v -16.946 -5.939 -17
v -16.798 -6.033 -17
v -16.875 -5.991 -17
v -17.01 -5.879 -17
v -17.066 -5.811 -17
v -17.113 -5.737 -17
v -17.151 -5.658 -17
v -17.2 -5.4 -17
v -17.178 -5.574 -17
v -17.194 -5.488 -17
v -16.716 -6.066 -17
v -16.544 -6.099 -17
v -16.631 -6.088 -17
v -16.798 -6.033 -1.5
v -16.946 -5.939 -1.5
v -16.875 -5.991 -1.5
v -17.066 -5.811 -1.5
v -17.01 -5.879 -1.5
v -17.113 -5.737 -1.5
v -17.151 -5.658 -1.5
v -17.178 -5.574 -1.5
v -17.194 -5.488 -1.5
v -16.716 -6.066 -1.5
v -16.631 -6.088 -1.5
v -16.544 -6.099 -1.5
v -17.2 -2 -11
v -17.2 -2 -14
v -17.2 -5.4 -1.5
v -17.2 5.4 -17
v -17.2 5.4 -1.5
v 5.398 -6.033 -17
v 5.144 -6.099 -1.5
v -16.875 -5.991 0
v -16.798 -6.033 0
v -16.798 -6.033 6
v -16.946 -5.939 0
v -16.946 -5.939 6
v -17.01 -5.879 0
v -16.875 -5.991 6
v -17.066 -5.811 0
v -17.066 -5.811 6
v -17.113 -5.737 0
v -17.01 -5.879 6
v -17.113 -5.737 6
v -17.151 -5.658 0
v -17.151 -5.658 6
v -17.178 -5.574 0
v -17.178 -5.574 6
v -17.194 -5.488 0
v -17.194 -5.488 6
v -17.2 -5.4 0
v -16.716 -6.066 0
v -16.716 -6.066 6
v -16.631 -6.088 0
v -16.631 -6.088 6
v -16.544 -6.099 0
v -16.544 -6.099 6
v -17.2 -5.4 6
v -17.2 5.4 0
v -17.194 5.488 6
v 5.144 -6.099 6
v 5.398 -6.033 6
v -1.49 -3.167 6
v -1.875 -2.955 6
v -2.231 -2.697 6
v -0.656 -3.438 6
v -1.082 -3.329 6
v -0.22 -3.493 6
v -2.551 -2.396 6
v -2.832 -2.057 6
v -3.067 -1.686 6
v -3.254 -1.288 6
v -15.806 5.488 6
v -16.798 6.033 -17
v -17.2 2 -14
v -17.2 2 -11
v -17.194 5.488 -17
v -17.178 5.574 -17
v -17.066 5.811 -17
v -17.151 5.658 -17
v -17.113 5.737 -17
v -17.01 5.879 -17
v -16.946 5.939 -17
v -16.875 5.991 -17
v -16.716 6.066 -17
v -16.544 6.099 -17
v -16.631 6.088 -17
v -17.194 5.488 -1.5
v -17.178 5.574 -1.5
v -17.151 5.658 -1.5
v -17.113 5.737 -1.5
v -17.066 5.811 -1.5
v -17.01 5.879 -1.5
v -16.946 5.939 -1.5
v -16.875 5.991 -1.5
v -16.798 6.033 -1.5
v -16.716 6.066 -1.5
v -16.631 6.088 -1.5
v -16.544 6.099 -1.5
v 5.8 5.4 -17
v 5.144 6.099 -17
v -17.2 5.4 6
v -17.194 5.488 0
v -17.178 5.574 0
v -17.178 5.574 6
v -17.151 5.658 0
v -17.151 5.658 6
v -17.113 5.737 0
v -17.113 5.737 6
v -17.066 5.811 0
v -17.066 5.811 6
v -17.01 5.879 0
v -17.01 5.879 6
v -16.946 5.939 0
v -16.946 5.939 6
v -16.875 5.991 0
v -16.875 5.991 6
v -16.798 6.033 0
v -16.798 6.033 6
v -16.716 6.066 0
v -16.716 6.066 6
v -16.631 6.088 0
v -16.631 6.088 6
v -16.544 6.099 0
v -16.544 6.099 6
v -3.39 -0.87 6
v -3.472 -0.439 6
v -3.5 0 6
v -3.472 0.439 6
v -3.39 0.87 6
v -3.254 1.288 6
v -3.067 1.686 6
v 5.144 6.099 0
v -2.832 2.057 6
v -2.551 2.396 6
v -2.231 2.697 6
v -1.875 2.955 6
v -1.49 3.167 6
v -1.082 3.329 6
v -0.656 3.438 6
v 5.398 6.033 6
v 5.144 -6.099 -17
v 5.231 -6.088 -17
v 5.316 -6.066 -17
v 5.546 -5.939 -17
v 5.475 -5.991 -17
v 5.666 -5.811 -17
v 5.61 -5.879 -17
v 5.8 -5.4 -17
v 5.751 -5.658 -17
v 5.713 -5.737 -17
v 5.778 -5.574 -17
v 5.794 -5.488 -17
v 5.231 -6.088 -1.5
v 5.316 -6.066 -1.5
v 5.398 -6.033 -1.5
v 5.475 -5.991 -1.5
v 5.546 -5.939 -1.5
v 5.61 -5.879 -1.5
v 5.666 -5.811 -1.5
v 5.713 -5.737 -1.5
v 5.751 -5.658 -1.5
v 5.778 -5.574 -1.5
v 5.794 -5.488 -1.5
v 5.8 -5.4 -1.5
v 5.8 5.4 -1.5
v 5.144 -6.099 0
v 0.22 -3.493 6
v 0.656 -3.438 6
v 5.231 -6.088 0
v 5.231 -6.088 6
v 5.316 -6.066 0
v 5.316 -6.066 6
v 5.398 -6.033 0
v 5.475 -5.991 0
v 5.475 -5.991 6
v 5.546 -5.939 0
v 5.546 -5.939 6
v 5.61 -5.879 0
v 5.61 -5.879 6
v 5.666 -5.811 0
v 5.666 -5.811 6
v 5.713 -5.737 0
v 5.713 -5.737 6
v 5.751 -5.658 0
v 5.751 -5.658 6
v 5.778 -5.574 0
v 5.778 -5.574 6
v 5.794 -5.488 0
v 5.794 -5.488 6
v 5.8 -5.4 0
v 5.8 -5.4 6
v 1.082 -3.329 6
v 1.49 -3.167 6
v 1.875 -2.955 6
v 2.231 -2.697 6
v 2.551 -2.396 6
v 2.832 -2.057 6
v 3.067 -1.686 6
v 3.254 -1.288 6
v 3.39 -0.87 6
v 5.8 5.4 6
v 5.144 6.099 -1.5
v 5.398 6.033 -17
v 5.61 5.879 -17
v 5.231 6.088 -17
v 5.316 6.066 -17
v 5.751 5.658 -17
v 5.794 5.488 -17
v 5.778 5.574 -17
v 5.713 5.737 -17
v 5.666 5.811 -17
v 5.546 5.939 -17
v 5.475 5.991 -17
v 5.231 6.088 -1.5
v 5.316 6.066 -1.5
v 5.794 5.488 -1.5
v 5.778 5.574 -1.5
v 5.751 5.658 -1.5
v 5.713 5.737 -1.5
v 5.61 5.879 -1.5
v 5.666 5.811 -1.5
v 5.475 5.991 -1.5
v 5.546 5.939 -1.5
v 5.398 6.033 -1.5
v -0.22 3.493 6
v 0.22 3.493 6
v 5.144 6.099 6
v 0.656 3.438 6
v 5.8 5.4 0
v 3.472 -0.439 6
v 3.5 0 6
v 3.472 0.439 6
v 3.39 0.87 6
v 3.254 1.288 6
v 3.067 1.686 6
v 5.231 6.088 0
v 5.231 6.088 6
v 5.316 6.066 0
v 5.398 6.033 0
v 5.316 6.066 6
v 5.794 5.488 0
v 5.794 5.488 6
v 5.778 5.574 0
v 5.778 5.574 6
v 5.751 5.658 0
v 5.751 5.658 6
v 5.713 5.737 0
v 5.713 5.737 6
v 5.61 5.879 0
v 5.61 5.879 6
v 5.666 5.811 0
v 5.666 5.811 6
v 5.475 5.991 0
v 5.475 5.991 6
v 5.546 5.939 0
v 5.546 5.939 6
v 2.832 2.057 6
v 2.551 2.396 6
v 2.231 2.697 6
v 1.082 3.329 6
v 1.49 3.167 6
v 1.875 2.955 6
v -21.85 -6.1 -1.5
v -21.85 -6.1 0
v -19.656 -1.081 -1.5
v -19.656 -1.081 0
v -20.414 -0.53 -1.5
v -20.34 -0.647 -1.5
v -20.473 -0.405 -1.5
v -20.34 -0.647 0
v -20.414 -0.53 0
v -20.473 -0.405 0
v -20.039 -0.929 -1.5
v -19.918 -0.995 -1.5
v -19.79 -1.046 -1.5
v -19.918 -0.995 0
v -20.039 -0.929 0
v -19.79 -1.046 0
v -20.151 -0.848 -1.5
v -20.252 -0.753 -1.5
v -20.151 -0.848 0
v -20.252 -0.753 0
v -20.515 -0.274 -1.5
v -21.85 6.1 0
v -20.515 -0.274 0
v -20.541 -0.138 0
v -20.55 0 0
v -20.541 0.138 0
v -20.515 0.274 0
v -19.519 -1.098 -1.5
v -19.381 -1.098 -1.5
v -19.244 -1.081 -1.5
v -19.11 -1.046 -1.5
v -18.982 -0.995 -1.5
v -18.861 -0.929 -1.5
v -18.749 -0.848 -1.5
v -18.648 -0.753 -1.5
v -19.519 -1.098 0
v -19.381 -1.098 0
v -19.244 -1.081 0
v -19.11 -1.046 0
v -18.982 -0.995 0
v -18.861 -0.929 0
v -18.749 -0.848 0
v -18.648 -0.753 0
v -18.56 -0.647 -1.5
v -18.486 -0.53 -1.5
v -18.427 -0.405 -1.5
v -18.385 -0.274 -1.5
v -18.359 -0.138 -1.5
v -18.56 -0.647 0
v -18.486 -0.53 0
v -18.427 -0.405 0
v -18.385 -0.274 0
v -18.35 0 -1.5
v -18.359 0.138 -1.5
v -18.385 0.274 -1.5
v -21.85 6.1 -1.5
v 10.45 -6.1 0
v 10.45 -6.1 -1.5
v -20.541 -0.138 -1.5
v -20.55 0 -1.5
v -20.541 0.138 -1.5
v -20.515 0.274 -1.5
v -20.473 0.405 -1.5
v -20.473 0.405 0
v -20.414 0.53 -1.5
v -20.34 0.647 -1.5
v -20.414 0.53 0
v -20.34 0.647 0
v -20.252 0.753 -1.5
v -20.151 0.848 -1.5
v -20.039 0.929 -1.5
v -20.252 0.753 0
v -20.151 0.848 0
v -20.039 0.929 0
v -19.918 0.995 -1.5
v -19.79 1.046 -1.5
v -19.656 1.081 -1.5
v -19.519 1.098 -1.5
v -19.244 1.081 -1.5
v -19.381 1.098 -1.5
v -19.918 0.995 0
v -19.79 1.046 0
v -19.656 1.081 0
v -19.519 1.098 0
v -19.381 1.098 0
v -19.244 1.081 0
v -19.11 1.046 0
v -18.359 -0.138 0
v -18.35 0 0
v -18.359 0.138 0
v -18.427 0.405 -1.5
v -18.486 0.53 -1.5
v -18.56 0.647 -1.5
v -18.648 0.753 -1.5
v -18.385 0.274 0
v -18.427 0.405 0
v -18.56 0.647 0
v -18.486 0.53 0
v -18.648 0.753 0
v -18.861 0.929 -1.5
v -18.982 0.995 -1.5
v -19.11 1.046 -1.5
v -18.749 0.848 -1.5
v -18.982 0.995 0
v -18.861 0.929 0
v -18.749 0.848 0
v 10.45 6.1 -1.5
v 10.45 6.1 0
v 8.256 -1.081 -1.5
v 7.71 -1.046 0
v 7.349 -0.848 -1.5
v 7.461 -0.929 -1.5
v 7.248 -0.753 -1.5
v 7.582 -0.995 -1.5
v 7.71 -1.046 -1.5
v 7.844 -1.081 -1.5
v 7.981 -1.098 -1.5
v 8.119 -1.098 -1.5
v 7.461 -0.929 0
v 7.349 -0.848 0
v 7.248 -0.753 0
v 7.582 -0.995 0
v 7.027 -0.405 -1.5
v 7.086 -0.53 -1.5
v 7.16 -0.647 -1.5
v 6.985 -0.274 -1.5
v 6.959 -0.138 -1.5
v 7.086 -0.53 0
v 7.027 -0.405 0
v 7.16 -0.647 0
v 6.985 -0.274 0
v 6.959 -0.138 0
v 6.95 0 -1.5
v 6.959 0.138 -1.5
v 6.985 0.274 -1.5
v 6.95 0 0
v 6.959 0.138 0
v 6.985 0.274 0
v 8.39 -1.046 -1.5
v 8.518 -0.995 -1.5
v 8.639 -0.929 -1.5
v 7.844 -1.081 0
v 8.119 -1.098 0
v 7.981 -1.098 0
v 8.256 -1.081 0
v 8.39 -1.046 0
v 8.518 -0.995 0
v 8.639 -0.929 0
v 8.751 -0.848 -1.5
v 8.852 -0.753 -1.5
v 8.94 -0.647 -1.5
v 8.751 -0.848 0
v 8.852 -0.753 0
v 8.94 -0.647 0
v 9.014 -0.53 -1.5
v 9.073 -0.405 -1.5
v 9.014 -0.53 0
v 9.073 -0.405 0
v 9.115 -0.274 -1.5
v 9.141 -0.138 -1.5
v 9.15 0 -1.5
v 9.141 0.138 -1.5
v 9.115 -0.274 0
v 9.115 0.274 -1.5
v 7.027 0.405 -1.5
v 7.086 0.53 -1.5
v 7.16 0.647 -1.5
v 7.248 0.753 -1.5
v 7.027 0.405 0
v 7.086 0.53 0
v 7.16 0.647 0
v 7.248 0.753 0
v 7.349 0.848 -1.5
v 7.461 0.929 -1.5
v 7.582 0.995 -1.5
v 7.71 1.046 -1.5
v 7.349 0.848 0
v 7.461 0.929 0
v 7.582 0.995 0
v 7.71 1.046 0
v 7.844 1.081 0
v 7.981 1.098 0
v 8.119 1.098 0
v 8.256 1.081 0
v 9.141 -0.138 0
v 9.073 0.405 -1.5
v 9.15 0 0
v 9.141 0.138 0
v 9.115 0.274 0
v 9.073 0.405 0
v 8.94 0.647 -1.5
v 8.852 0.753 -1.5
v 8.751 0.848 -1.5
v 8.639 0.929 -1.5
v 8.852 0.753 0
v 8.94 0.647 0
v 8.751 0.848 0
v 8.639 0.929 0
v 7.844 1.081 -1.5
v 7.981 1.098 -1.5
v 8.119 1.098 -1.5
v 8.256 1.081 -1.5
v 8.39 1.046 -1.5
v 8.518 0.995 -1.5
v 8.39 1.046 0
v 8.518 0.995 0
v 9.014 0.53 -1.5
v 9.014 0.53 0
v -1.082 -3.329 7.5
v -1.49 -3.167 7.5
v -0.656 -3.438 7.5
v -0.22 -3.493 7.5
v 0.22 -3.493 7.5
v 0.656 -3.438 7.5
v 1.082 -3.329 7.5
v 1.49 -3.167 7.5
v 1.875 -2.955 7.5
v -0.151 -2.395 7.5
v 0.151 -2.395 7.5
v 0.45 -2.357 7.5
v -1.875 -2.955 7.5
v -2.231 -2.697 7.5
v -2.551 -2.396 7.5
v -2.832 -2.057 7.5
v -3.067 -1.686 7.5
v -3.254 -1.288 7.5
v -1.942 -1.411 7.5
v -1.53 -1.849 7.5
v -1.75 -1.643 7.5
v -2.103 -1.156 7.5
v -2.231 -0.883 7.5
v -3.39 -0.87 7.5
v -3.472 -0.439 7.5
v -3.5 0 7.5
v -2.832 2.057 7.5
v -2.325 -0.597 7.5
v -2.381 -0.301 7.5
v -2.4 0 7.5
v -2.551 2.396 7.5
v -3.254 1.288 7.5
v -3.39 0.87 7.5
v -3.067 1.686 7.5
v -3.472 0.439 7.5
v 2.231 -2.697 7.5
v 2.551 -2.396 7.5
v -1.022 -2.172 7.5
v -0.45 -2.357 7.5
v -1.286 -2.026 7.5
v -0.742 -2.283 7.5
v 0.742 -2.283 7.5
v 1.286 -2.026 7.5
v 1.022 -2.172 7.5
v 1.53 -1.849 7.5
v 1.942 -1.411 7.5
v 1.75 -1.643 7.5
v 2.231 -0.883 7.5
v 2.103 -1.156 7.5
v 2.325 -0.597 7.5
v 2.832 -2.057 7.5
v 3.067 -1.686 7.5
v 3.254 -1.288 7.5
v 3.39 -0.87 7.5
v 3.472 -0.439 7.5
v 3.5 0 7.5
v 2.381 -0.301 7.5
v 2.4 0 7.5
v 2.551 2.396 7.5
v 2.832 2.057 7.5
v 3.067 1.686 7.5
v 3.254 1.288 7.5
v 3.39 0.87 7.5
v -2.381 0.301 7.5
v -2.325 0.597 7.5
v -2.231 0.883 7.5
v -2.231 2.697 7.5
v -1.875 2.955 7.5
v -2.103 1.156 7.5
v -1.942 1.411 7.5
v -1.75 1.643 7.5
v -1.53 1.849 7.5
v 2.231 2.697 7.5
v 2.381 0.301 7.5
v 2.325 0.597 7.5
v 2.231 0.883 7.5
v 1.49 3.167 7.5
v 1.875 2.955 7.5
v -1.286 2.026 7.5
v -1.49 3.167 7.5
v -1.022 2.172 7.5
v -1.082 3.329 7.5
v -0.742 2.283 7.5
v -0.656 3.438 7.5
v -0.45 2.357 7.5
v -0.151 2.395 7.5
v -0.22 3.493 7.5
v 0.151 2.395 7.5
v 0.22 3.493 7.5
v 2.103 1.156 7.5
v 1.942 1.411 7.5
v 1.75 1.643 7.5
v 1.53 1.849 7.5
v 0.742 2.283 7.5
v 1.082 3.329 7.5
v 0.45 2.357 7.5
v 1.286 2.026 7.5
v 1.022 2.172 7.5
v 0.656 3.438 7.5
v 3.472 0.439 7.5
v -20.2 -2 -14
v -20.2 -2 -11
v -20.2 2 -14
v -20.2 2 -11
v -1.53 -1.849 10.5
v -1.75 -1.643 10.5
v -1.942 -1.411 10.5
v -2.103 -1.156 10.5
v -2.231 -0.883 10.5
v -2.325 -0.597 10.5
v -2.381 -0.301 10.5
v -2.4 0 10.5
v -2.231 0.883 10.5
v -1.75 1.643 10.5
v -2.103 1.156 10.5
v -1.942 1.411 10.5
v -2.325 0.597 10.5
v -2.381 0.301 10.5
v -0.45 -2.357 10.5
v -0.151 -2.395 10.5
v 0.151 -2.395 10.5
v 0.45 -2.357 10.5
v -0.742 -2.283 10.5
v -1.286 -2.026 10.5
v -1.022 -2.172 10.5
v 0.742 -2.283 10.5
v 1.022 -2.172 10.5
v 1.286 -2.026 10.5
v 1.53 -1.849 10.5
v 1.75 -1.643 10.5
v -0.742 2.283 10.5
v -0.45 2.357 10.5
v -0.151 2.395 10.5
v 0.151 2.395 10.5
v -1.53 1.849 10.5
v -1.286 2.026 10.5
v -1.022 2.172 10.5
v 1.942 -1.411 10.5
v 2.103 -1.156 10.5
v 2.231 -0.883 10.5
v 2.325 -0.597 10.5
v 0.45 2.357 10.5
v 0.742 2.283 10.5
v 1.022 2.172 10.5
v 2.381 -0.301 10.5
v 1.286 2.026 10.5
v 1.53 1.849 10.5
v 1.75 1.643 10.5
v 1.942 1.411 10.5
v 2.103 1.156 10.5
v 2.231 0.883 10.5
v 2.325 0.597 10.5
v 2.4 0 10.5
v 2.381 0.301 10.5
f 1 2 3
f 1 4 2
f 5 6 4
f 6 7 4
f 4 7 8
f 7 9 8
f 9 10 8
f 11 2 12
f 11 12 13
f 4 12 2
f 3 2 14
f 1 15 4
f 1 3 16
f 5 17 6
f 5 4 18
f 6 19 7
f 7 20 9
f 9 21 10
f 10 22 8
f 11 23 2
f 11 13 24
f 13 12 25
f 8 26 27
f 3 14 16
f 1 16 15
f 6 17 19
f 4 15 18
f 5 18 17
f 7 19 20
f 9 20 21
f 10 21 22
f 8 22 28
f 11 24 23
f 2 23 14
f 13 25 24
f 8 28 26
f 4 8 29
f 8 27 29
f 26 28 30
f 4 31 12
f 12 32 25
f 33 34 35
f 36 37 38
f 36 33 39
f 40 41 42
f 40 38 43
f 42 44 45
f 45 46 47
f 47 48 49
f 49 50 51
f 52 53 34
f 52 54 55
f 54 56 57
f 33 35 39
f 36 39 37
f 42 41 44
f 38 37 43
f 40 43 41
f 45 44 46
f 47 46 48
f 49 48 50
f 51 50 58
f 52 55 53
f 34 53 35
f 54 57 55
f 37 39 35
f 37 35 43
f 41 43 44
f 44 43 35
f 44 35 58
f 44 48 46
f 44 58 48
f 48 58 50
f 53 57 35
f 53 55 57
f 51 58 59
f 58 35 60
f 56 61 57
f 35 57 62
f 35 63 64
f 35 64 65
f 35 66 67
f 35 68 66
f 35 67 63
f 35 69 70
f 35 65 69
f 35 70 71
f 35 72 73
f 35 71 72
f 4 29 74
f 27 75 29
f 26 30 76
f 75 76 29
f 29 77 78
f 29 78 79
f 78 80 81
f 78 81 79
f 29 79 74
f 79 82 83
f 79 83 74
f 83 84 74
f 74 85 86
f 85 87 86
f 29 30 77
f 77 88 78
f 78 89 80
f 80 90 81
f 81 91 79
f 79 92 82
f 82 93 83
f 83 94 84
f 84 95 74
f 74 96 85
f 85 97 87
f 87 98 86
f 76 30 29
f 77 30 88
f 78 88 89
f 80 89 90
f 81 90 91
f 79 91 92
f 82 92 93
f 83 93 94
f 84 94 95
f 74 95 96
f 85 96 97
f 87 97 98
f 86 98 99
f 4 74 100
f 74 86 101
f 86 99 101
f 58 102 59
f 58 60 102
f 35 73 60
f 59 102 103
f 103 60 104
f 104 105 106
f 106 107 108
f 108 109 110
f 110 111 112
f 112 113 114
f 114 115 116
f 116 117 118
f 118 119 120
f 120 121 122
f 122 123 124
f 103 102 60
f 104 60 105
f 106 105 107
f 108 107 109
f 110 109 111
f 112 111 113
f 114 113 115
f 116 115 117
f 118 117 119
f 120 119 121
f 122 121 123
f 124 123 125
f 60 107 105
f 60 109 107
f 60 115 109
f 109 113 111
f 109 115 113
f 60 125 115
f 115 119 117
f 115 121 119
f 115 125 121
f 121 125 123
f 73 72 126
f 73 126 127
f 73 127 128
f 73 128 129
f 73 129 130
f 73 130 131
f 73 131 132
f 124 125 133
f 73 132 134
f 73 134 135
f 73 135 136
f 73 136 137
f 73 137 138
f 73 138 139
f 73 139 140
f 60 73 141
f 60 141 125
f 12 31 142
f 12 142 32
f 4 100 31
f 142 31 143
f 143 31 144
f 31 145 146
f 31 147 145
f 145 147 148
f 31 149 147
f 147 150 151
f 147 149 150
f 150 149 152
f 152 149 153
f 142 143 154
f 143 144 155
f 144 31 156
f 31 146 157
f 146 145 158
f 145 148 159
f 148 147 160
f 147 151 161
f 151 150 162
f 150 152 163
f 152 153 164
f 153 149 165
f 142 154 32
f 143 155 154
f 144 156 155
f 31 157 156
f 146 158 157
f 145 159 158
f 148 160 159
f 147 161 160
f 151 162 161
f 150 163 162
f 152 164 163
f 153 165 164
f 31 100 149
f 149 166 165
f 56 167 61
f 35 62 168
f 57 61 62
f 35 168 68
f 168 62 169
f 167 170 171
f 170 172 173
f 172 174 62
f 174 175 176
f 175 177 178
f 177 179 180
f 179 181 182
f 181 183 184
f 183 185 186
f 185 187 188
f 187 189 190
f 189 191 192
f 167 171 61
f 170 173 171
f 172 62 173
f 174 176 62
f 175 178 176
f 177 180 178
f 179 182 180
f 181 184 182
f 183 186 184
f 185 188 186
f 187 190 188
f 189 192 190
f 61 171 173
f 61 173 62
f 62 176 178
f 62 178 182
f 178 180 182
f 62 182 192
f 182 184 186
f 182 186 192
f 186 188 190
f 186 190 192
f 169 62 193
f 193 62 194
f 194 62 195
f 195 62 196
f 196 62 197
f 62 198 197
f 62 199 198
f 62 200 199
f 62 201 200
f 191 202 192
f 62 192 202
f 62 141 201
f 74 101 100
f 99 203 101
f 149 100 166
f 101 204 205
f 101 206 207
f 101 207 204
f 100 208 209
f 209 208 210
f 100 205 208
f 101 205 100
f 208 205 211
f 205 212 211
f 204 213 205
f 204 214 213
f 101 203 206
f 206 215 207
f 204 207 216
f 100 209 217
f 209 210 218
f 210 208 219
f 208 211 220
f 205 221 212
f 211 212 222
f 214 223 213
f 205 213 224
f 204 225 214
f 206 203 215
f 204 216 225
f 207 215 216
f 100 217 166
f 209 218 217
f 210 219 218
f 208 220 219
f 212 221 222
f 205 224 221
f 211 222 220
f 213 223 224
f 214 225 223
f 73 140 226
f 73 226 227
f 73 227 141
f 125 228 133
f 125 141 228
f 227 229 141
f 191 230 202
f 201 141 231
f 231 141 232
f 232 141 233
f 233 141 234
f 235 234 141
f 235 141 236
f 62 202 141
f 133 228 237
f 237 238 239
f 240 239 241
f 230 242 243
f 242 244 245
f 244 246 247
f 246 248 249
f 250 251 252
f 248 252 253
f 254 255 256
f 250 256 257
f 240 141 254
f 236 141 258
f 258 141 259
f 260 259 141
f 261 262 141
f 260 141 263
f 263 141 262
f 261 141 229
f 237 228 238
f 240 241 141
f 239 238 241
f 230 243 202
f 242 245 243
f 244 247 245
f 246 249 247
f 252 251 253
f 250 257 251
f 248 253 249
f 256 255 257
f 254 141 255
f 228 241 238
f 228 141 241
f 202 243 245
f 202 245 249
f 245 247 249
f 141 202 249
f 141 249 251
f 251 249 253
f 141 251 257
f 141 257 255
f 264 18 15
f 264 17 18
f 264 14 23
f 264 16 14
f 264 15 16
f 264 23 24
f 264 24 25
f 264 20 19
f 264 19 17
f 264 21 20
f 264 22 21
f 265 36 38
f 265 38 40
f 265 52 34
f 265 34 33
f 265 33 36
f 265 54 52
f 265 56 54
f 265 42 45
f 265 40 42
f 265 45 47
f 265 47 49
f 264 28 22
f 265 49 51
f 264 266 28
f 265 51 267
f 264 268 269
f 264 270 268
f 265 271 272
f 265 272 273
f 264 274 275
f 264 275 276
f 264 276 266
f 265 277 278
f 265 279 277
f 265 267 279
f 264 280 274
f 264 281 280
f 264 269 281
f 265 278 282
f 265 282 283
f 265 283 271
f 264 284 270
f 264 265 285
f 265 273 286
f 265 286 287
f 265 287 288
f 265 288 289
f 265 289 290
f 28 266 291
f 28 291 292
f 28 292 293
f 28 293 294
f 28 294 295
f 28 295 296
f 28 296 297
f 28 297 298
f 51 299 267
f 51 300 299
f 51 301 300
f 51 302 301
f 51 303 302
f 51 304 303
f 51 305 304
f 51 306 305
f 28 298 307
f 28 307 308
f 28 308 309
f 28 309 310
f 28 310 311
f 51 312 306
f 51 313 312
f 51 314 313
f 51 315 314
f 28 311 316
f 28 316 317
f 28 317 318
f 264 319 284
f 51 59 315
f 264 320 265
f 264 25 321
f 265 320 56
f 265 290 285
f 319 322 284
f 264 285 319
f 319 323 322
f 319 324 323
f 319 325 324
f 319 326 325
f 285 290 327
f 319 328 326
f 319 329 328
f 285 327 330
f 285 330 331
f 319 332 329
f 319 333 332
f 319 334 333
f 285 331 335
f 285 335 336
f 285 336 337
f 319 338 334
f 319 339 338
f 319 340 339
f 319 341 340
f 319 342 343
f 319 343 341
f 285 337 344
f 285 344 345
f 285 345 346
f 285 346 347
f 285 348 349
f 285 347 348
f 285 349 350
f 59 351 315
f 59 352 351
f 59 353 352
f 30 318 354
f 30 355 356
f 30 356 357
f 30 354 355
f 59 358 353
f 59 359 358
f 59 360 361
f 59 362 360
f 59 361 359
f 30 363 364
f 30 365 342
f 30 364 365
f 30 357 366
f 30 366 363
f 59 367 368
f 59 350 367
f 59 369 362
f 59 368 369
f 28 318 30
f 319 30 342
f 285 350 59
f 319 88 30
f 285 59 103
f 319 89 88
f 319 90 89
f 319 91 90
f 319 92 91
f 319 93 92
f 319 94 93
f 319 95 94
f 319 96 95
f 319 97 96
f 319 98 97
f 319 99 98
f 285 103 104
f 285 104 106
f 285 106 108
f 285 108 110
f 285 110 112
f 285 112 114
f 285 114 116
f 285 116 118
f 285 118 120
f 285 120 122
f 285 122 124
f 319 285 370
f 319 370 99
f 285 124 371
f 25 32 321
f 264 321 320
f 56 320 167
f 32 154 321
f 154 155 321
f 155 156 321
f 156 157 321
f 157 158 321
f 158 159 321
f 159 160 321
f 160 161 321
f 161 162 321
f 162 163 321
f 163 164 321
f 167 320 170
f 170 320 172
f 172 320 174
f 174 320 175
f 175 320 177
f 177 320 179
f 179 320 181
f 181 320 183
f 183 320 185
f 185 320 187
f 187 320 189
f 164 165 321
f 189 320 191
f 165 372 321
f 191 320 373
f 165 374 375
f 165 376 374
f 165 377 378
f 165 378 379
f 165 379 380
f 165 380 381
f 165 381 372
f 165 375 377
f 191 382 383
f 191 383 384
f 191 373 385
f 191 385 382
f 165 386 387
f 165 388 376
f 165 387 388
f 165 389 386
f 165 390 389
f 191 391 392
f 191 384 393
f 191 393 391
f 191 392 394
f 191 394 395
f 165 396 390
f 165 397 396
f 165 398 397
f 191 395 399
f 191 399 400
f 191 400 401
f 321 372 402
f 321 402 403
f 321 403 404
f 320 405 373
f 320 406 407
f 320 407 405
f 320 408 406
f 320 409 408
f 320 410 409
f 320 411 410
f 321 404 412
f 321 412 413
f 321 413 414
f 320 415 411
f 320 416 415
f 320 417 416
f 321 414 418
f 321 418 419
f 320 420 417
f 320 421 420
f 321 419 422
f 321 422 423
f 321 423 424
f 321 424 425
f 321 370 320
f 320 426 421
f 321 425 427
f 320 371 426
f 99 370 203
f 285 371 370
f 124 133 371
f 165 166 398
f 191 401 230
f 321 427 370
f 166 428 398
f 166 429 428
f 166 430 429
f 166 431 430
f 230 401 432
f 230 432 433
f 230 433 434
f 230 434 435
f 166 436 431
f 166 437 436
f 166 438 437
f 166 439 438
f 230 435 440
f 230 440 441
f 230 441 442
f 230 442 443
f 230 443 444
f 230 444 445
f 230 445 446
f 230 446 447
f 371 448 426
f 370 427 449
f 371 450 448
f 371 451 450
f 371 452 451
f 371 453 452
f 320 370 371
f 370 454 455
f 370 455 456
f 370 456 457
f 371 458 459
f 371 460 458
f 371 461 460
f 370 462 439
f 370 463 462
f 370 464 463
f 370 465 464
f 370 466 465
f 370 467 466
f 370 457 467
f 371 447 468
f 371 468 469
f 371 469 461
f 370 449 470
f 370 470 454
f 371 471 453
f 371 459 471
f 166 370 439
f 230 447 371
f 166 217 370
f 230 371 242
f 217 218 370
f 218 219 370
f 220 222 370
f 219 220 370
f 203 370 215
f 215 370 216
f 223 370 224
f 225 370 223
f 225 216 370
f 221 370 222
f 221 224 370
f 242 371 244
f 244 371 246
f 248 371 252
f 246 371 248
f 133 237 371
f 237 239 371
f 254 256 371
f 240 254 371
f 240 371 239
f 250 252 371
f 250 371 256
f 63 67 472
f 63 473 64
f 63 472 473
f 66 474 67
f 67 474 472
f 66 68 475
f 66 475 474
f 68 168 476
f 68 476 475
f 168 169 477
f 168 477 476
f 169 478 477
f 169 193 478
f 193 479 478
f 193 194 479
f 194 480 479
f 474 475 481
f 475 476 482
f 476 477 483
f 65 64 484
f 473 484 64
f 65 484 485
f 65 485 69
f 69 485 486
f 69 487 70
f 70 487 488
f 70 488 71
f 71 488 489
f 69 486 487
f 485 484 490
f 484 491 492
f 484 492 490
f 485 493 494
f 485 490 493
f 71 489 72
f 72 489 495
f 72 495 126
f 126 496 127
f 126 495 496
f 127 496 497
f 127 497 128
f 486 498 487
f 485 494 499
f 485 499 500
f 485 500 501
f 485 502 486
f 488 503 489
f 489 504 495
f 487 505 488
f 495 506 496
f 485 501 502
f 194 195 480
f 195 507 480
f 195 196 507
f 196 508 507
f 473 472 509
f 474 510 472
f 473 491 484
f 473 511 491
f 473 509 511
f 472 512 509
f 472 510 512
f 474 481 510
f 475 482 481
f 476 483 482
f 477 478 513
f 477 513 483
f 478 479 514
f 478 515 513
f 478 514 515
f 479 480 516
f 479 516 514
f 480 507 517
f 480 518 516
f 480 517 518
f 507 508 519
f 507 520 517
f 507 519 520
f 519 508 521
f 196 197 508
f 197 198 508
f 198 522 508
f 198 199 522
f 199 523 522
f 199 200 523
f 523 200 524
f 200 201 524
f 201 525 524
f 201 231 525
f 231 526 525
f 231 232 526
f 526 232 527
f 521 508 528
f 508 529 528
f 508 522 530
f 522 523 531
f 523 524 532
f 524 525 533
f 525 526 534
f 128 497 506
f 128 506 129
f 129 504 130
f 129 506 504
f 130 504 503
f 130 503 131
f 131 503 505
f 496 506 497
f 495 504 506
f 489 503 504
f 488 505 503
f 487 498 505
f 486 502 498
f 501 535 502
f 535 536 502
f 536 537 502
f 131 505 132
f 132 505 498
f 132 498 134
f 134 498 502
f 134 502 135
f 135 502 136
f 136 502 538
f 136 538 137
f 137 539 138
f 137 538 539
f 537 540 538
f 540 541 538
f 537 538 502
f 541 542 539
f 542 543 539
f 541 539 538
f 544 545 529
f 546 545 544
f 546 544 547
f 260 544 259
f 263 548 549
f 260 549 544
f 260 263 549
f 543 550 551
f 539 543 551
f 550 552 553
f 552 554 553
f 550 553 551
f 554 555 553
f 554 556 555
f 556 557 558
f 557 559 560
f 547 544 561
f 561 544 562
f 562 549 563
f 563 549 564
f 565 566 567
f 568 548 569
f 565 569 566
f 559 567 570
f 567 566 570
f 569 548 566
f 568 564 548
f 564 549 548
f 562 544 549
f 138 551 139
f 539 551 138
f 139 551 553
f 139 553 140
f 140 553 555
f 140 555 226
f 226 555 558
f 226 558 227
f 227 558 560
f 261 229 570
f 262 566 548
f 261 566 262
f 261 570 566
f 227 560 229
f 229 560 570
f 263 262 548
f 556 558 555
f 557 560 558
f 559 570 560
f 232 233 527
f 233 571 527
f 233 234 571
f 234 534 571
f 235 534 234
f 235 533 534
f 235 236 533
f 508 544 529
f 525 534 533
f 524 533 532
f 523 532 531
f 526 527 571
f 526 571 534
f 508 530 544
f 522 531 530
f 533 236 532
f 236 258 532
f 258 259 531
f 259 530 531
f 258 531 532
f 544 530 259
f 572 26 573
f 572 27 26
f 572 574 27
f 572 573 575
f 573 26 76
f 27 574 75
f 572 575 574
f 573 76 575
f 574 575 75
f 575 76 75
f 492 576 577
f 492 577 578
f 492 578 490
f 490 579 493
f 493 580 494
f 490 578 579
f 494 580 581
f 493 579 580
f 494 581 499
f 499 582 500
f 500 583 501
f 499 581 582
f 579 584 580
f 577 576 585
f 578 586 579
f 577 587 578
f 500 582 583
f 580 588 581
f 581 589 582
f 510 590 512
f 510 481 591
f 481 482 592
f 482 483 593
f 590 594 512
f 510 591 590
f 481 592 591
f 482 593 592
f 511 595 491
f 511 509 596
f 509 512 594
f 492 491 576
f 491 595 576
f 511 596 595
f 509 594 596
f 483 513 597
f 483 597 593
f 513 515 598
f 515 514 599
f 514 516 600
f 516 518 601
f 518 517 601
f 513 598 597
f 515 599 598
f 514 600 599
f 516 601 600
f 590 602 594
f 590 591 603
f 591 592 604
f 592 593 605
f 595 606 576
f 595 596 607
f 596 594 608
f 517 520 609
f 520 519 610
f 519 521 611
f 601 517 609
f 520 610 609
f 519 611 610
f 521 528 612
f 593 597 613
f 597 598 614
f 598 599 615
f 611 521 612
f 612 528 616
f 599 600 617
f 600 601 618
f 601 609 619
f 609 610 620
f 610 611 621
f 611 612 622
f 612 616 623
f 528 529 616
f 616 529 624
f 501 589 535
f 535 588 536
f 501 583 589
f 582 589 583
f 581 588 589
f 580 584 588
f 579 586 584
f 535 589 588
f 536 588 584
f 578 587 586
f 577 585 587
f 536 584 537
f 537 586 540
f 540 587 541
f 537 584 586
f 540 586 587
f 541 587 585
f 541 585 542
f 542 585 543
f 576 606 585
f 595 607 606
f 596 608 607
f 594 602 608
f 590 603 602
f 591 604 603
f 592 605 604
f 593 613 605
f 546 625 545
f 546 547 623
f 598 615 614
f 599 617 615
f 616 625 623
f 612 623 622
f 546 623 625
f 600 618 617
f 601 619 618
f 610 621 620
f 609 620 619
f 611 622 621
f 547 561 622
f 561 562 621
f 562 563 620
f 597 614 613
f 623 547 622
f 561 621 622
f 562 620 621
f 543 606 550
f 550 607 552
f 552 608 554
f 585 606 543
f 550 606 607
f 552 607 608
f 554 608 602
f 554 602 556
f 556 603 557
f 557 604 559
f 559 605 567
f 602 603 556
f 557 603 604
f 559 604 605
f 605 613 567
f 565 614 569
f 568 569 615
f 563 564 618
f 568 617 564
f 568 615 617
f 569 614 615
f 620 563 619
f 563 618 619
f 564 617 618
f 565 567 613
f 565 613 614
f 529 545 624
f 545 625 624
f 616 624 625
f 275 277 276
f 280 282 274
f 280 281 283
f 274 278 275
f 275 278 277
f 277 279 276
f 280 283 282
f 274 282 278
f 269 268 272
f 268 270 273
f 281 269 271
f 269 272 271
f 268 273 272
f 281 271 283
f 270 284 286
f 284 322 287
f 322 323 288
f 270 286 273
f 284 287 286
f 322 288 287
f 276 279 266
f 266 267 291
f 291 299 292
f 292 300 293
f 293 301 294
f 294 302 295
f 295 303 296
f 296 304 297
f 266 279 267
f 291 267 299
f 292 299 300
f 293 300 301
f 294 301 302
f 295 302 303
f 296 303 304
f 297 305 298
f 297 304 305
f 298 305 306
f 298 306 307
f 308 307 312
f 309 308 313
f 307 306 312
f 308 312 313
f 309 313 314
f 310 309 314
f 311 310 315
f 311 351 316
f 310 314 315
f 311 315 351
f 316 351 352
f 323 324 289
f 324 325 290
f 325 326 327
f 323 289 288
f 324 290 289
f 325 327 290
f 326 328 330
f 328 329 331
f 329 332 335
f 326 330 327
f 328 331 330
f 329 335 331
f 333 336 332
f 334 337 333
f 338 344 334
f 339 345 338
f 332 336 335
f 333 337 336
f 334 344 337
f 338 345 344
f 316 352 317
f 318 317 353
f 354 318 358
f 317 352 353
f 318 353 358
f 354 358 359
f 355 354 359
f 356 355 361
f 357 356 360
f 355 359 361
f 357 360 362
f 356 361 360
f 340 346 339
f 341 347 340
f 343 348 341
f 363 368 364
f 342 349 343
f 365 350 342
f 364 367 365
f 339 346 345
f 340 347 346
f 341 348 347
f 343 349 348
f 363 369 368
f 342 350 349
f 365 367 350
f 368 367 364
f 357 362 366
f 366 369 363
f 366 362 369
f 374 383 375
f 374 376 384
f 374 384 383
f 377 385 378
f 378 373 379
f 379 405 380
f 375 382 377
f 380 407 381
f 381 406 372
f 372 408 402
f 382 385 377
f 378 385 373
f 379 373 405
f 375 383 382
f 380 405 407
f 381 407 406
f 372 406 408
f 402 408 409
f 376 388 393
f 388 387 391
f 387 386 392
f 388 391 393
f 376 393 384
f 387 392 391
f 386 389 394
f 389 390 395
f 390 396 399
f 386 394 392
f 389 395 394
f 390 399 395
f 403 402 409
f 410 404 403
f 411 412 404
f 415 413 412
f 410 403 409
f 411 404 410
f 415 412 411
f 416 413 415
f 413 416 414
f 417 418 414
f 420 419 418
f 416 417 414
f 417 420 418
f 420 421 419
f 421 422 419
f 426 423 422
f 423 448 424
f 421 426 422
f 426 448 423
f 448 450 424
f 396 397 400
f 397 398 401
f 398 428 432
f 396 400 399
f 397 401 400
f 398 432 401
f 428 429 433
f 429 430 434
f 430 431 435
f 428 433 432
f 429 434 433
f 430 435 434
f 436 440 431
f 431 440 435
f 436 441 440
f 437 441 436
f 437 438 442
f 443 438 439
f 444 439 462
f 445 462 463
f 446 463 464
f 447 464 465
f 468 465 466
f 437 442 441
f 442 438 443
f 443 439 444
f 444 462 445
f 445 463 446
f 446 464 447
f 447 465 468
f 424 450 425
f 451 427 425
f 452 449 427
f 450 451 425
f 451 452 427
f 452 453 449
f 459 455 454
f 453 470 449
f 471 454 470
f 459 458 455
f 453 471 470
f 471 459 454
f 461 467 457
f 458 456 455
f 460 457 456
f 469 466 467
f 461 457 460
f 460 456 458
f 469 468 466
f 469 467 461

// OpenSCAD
$fn = 50;

difference() {
	union() {
		translate(v = [-5.7, 0, -17]) {
			hull() {
				translate(v = [-10.8, 5.3999999999999995, 0]) {
					cylinder(h = 23, r = 0.7);
				}
				translate(v = [10.8, 5.3999999999999995, 0]) {
					cylinder(h = 23, r = 0.7);
				}
				translate(v = [-10.8, -5.3999999999999995, 0]) {
					cylinder(h = 23, r = 0.7);
				}
				translate(v = [10.8, -5.3999999999999995, 0]) {
					cylinder(h = 23, r = 0.7);
				}
			}
		}
		translate(v = [-21.849999999999998, -6.1, -1.5]) {
			cube(size = [32.3, 12.2, 1.5]);
		}
		translate(v = [0, 0, 6.0]) {
			cylinder(h = 1.5, r = 3.5);
		}
		translate(v = [-20.2, -2.0, -14]) {
			cube(size = [4, 4, 3]);
		}
		translate(v = [0, 0, 7.5]) {
			cylinder(h = 3.0, r = 2.4);
		}
	}
	union() {
		translate(v = [-19.45, 0, -4]) {
			cylinder(h = 5, r = 1.1);
		}
		translate(v = [8.05, 0, -4]) {
			cylinder(h = 5, r = 1.1);
		}
	}
}
